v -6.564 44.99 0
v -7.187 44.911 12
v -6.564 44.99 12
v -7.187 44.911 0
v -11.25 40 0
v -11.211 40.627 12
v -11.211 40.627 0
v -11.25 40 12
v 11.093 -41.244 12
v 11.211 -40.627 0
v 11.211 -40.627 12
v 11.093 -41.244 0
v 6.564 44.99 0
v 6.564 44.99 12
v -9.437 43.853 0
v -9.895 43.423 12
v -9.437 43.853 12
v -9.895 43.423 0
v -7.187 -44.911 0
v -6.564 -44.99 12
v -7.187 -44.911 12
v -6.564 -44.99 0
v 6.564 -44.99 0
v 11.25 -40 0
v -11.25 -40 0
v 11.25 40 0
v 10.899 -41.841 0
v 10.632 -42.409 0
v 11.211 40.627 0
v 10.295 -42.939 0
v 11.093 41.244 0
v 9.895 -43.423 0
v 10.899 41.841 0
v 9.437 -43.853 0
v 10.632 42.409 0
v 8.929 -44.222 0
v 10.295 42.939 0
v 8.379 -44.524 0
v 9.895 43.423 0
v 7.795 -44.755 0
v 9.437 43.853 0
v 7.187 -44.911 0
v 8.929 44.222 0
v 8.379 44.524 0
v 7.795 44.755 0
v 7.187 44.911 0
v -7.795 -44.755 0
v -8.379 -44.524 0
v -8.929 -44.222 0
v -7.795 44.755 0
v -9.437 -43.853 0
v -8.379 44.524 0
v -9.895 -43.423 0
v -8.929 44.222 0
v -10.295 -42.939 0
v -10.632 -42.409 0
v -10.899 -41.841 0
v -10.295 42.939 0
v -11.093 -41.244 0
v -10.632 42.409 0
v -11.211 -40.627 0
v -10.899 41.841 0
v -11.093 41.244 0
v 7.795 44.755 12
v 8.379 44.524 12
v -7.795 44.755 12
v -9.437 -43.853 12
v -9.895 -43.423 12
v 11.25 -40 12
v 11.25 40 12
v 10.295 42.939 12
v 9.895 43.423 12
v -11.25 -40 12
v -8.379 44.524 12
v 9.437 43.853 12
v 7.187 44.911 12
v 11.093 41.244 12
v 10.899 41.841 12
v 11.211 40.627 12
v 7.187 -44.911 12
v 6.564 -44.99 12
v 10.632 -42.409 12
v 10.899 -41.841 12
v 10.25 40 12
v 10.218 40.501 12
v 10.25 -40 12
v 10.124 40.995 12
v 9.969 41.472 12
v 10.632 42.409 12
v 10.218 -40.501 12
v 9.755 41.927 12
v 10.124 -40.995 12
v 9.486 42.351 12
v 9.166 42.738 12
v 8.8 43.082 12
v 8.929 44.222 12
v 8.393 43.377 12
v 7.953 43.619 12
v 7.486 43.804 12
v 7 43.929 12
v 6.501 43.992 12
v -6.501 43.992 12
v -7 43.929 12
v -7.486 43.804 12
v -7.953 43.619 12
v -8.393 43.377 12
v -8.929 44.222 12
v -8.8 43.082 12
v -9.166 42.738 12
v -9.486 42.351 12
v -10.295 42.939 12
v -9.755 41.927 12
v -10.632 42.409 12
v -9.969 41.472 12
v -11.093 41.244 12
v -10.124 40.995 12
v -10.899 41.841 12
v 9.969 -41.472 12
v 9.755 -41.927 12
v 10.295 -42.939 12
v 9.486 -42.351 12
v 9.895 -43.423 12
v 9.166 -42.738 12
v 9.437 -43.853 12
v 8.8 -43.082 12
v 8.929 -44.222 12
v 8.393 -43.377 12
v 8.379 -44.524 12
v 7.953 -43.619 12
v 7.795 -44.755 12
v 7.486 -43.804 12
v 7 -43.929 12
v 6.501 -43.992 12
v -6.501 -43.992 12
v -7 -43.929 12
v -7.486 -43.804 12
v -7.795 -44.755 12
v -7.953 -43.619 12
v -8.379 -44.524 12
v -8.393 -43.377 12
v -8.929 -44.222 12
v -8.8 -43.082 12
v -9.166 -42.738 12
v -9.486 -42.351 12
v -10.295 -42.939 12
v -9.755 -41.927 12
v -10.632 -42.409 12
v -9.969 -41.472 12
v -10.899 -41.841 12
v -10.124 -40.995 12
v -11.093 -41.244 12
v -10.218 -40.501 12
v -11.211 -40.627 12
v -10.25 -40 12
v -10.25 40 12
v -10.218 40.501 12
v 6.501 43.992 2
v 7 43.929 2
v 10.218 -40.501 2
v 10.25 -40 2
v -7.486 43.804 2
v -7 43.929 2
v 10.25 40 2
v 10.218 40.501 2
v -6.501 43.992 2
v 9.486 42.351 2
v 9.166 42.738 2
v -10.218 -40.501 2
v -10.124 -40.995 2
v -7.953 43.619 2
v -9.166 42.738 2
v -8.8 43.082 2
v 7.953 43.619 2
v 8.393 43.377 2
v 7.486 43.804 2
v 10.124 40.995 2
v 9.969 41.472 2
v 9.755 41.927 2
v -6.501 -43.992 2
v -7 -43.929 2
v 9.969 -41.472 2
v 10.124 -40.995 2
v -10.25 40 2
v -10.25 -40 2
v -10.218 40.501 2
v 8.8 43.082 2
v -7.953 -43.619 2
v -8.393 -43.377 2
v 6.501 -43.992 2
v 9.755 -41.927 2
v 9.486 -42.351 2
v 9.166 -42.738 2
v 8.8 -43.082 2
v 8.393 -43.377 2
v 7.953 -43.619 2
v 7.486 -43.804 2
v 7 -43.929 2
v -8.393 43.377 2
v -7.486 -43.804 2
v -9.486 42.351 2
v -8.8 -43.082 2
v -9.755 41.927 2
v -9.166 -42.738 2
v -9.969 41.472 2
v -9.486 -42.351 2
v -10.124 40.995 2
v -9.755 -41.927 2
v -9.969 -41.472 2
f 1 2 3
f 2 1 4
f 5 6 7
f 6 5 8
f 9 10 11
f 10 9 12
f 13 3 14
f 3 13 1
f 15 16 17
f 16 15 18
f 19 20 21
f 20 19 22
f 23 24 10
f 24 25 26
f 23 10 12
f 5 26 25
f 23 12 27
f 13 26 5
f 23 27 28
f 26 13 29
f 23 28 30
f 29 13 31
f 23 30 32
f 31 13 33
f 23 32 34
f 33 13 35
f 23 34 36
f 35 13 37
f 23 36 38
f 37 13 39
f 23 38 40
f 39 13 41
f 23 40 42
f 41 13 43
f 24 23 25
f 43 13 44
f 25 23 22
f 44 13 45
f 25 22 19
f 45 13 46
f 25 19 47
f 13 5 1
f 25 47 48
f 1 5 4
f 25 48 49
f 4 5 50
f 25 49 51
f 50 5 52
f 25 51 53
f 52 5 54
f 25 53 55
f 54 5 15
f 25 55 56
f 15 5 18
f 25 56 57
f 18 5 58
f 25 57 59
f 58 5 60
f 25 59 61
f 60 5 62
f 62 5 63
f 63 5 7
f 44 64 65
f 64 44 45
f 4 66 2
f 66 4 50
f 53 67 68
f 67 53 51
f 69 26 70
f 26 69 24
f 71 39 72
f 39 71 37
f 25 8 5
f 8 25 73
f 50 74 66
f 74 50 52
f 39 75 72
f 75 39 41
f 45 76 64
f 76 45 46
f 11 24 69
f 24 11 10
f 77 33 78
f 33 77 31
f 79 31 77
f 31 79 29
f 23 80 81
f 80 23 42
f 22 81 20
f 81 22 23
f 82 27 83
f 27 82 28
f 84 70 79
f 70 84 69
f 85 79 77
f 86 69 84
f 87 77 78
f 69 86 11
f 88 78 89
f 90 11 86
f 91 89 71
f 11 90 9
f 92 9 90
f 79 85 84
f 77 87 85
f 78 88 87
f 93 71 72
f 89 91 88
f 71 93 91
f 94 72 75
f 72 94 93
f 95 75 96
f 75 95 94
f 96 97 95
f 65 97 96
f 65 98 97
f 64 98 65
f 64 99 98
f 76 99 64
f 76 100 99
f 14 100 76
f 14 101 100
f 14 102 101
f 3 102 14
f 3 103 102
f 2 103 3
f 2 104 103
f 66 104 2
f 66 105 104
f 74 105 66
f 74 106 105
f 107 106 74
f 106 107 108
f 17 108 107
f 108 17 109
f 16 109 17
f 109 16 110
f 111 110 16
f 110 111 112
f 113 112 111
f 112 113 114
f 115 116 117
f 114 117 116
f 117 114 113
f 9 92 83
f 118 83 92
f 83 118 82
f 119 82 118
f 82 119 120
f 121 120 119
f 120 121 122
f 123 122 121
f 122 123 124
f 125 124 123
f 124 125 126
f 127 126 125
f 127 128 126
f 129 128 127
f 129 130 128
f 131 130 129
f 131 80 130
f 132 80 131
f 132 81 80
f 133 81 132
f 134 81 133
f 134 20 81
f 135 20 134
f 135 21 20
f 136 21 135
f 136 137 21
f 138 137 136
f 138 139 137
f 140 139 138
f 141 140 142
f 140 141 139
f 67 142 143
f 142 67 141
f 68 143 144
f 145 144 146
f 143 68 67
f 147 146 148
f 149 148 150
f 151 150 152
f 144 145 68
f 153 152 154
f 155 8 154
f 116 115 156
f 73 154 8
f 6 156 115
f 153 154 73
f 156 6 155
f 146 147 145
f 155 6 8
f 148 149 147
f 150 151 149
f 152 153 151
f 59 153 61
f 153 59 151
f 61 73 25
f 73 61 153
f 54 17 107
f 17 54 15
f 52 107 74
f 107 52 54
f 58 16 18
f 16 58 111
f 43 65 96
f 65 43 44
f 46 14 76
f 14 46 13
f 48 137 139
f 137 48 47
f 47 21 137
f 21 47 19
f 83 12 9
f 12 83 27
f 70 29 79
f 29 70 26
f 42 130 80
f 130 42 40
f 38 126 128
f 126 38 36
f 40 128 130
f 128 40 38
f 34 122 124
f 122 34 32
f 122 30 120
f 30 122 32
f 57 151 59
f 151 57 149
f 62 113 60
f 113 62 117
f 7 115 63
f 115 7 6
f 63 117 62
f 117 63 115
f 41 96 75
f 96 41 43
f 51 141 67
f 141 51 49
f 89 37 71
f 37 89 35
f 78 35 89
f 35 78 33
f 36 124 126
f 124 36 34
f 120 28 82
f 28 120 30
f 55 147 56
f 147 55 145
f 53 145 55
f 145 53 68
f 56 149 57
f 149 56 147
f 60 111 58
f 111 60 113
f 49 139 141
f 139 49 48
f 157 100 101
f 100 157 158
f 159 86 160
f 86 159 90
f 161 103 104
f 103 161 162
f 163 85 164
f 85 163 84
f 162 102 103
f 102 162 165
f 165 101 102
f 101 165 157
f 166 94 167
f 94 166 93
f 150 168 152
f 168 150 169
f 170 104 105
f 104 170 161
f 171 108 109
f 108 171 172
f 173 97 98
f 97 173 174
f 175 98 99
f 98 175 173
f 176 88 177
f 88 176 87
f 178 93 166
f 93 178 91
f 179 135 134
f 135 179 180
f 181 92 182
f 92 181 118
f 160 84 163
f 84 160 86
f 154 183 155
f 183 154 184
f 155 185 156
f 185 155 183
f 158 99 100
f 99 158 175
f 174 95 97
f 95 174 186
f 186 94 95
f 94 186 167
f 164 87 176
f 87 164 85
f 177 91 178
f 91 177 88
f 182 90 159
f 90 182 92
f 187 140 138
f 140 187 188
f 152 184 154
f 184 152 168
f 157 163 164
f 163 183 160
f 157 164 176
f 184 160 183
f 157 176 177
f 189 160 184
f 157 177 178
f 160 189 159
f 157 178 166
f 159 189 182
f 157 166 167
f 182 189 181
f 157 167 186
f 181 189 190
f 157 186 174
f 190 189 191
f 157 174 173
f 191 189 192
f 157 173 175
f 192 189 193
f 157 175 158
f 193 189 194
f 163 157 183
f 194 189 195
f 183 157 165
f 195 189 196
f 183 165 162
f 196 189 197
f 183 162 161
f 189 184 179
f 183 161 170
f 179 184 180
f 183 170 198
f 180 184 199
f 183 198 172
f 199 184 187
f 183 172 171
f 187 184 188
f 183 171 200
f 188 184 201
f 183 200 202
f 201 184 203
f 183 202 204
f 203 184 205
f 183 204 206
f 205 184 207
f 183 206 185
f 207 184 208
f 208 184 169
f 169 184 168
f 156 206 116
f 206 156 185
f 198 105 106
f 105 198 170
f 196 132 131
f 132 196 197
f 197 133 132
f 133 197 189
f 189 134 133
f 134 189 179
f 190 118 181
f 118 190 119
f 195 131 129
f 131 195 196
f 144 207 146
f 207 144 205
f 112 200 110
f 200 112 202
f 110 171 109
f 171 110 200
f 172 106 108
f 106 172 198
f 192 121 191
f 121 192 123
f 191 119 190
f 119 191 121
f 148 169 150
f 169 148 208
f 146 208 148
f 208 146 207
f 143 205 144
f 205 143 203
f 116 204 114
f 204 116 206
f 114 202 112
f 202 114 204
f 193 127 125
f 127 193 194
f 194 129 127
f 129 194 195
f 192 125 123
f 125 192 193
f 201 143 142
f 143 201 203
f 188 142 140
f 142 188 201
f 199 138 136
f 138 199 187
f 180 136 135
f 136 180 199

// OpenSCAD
$fn = 50;


difference() {
	union() {
		hull() {
			translate(v = [-6.2500000000, 40.0000000000, 0]) {
				cylinder(h = 12, r = 5);
			}
			translate(v = [6.2500000000, 40.0000000000, 0]) {
				cylinder(h = 12, r = 5);
			}
			translate(v = [-6.2500000000, -40.0000000000, 0]) {
				cylinder(h = 12, r = 5);
			}
			translate(v = [6.2500000000, -40.0000000000, 0]) {
				cylinder(h = 12, r = 5);
			}
		}
	}
	union() {
		translate(v = [0, 0, 2]) {
			hull() {
				translate(v = [-6.2500000000, 40.0000000000, 0]) {
					cylinder(h = 10, r = 4);
				}
				translate(v = [6.2500000000, 40.0000000000, 0]) {
					cylinder(h = 10, r = 4);
				}
				translate(v = [-6.2500000000, -40.0000000000, 0]) {
					cylinder(h = 10, r = 4);
				}
				translate(v = [6.2500000000, -40.0000000000, 0]) {
					cylinder(h = 10, r = 4);
				}
			}
		}
	}
}
